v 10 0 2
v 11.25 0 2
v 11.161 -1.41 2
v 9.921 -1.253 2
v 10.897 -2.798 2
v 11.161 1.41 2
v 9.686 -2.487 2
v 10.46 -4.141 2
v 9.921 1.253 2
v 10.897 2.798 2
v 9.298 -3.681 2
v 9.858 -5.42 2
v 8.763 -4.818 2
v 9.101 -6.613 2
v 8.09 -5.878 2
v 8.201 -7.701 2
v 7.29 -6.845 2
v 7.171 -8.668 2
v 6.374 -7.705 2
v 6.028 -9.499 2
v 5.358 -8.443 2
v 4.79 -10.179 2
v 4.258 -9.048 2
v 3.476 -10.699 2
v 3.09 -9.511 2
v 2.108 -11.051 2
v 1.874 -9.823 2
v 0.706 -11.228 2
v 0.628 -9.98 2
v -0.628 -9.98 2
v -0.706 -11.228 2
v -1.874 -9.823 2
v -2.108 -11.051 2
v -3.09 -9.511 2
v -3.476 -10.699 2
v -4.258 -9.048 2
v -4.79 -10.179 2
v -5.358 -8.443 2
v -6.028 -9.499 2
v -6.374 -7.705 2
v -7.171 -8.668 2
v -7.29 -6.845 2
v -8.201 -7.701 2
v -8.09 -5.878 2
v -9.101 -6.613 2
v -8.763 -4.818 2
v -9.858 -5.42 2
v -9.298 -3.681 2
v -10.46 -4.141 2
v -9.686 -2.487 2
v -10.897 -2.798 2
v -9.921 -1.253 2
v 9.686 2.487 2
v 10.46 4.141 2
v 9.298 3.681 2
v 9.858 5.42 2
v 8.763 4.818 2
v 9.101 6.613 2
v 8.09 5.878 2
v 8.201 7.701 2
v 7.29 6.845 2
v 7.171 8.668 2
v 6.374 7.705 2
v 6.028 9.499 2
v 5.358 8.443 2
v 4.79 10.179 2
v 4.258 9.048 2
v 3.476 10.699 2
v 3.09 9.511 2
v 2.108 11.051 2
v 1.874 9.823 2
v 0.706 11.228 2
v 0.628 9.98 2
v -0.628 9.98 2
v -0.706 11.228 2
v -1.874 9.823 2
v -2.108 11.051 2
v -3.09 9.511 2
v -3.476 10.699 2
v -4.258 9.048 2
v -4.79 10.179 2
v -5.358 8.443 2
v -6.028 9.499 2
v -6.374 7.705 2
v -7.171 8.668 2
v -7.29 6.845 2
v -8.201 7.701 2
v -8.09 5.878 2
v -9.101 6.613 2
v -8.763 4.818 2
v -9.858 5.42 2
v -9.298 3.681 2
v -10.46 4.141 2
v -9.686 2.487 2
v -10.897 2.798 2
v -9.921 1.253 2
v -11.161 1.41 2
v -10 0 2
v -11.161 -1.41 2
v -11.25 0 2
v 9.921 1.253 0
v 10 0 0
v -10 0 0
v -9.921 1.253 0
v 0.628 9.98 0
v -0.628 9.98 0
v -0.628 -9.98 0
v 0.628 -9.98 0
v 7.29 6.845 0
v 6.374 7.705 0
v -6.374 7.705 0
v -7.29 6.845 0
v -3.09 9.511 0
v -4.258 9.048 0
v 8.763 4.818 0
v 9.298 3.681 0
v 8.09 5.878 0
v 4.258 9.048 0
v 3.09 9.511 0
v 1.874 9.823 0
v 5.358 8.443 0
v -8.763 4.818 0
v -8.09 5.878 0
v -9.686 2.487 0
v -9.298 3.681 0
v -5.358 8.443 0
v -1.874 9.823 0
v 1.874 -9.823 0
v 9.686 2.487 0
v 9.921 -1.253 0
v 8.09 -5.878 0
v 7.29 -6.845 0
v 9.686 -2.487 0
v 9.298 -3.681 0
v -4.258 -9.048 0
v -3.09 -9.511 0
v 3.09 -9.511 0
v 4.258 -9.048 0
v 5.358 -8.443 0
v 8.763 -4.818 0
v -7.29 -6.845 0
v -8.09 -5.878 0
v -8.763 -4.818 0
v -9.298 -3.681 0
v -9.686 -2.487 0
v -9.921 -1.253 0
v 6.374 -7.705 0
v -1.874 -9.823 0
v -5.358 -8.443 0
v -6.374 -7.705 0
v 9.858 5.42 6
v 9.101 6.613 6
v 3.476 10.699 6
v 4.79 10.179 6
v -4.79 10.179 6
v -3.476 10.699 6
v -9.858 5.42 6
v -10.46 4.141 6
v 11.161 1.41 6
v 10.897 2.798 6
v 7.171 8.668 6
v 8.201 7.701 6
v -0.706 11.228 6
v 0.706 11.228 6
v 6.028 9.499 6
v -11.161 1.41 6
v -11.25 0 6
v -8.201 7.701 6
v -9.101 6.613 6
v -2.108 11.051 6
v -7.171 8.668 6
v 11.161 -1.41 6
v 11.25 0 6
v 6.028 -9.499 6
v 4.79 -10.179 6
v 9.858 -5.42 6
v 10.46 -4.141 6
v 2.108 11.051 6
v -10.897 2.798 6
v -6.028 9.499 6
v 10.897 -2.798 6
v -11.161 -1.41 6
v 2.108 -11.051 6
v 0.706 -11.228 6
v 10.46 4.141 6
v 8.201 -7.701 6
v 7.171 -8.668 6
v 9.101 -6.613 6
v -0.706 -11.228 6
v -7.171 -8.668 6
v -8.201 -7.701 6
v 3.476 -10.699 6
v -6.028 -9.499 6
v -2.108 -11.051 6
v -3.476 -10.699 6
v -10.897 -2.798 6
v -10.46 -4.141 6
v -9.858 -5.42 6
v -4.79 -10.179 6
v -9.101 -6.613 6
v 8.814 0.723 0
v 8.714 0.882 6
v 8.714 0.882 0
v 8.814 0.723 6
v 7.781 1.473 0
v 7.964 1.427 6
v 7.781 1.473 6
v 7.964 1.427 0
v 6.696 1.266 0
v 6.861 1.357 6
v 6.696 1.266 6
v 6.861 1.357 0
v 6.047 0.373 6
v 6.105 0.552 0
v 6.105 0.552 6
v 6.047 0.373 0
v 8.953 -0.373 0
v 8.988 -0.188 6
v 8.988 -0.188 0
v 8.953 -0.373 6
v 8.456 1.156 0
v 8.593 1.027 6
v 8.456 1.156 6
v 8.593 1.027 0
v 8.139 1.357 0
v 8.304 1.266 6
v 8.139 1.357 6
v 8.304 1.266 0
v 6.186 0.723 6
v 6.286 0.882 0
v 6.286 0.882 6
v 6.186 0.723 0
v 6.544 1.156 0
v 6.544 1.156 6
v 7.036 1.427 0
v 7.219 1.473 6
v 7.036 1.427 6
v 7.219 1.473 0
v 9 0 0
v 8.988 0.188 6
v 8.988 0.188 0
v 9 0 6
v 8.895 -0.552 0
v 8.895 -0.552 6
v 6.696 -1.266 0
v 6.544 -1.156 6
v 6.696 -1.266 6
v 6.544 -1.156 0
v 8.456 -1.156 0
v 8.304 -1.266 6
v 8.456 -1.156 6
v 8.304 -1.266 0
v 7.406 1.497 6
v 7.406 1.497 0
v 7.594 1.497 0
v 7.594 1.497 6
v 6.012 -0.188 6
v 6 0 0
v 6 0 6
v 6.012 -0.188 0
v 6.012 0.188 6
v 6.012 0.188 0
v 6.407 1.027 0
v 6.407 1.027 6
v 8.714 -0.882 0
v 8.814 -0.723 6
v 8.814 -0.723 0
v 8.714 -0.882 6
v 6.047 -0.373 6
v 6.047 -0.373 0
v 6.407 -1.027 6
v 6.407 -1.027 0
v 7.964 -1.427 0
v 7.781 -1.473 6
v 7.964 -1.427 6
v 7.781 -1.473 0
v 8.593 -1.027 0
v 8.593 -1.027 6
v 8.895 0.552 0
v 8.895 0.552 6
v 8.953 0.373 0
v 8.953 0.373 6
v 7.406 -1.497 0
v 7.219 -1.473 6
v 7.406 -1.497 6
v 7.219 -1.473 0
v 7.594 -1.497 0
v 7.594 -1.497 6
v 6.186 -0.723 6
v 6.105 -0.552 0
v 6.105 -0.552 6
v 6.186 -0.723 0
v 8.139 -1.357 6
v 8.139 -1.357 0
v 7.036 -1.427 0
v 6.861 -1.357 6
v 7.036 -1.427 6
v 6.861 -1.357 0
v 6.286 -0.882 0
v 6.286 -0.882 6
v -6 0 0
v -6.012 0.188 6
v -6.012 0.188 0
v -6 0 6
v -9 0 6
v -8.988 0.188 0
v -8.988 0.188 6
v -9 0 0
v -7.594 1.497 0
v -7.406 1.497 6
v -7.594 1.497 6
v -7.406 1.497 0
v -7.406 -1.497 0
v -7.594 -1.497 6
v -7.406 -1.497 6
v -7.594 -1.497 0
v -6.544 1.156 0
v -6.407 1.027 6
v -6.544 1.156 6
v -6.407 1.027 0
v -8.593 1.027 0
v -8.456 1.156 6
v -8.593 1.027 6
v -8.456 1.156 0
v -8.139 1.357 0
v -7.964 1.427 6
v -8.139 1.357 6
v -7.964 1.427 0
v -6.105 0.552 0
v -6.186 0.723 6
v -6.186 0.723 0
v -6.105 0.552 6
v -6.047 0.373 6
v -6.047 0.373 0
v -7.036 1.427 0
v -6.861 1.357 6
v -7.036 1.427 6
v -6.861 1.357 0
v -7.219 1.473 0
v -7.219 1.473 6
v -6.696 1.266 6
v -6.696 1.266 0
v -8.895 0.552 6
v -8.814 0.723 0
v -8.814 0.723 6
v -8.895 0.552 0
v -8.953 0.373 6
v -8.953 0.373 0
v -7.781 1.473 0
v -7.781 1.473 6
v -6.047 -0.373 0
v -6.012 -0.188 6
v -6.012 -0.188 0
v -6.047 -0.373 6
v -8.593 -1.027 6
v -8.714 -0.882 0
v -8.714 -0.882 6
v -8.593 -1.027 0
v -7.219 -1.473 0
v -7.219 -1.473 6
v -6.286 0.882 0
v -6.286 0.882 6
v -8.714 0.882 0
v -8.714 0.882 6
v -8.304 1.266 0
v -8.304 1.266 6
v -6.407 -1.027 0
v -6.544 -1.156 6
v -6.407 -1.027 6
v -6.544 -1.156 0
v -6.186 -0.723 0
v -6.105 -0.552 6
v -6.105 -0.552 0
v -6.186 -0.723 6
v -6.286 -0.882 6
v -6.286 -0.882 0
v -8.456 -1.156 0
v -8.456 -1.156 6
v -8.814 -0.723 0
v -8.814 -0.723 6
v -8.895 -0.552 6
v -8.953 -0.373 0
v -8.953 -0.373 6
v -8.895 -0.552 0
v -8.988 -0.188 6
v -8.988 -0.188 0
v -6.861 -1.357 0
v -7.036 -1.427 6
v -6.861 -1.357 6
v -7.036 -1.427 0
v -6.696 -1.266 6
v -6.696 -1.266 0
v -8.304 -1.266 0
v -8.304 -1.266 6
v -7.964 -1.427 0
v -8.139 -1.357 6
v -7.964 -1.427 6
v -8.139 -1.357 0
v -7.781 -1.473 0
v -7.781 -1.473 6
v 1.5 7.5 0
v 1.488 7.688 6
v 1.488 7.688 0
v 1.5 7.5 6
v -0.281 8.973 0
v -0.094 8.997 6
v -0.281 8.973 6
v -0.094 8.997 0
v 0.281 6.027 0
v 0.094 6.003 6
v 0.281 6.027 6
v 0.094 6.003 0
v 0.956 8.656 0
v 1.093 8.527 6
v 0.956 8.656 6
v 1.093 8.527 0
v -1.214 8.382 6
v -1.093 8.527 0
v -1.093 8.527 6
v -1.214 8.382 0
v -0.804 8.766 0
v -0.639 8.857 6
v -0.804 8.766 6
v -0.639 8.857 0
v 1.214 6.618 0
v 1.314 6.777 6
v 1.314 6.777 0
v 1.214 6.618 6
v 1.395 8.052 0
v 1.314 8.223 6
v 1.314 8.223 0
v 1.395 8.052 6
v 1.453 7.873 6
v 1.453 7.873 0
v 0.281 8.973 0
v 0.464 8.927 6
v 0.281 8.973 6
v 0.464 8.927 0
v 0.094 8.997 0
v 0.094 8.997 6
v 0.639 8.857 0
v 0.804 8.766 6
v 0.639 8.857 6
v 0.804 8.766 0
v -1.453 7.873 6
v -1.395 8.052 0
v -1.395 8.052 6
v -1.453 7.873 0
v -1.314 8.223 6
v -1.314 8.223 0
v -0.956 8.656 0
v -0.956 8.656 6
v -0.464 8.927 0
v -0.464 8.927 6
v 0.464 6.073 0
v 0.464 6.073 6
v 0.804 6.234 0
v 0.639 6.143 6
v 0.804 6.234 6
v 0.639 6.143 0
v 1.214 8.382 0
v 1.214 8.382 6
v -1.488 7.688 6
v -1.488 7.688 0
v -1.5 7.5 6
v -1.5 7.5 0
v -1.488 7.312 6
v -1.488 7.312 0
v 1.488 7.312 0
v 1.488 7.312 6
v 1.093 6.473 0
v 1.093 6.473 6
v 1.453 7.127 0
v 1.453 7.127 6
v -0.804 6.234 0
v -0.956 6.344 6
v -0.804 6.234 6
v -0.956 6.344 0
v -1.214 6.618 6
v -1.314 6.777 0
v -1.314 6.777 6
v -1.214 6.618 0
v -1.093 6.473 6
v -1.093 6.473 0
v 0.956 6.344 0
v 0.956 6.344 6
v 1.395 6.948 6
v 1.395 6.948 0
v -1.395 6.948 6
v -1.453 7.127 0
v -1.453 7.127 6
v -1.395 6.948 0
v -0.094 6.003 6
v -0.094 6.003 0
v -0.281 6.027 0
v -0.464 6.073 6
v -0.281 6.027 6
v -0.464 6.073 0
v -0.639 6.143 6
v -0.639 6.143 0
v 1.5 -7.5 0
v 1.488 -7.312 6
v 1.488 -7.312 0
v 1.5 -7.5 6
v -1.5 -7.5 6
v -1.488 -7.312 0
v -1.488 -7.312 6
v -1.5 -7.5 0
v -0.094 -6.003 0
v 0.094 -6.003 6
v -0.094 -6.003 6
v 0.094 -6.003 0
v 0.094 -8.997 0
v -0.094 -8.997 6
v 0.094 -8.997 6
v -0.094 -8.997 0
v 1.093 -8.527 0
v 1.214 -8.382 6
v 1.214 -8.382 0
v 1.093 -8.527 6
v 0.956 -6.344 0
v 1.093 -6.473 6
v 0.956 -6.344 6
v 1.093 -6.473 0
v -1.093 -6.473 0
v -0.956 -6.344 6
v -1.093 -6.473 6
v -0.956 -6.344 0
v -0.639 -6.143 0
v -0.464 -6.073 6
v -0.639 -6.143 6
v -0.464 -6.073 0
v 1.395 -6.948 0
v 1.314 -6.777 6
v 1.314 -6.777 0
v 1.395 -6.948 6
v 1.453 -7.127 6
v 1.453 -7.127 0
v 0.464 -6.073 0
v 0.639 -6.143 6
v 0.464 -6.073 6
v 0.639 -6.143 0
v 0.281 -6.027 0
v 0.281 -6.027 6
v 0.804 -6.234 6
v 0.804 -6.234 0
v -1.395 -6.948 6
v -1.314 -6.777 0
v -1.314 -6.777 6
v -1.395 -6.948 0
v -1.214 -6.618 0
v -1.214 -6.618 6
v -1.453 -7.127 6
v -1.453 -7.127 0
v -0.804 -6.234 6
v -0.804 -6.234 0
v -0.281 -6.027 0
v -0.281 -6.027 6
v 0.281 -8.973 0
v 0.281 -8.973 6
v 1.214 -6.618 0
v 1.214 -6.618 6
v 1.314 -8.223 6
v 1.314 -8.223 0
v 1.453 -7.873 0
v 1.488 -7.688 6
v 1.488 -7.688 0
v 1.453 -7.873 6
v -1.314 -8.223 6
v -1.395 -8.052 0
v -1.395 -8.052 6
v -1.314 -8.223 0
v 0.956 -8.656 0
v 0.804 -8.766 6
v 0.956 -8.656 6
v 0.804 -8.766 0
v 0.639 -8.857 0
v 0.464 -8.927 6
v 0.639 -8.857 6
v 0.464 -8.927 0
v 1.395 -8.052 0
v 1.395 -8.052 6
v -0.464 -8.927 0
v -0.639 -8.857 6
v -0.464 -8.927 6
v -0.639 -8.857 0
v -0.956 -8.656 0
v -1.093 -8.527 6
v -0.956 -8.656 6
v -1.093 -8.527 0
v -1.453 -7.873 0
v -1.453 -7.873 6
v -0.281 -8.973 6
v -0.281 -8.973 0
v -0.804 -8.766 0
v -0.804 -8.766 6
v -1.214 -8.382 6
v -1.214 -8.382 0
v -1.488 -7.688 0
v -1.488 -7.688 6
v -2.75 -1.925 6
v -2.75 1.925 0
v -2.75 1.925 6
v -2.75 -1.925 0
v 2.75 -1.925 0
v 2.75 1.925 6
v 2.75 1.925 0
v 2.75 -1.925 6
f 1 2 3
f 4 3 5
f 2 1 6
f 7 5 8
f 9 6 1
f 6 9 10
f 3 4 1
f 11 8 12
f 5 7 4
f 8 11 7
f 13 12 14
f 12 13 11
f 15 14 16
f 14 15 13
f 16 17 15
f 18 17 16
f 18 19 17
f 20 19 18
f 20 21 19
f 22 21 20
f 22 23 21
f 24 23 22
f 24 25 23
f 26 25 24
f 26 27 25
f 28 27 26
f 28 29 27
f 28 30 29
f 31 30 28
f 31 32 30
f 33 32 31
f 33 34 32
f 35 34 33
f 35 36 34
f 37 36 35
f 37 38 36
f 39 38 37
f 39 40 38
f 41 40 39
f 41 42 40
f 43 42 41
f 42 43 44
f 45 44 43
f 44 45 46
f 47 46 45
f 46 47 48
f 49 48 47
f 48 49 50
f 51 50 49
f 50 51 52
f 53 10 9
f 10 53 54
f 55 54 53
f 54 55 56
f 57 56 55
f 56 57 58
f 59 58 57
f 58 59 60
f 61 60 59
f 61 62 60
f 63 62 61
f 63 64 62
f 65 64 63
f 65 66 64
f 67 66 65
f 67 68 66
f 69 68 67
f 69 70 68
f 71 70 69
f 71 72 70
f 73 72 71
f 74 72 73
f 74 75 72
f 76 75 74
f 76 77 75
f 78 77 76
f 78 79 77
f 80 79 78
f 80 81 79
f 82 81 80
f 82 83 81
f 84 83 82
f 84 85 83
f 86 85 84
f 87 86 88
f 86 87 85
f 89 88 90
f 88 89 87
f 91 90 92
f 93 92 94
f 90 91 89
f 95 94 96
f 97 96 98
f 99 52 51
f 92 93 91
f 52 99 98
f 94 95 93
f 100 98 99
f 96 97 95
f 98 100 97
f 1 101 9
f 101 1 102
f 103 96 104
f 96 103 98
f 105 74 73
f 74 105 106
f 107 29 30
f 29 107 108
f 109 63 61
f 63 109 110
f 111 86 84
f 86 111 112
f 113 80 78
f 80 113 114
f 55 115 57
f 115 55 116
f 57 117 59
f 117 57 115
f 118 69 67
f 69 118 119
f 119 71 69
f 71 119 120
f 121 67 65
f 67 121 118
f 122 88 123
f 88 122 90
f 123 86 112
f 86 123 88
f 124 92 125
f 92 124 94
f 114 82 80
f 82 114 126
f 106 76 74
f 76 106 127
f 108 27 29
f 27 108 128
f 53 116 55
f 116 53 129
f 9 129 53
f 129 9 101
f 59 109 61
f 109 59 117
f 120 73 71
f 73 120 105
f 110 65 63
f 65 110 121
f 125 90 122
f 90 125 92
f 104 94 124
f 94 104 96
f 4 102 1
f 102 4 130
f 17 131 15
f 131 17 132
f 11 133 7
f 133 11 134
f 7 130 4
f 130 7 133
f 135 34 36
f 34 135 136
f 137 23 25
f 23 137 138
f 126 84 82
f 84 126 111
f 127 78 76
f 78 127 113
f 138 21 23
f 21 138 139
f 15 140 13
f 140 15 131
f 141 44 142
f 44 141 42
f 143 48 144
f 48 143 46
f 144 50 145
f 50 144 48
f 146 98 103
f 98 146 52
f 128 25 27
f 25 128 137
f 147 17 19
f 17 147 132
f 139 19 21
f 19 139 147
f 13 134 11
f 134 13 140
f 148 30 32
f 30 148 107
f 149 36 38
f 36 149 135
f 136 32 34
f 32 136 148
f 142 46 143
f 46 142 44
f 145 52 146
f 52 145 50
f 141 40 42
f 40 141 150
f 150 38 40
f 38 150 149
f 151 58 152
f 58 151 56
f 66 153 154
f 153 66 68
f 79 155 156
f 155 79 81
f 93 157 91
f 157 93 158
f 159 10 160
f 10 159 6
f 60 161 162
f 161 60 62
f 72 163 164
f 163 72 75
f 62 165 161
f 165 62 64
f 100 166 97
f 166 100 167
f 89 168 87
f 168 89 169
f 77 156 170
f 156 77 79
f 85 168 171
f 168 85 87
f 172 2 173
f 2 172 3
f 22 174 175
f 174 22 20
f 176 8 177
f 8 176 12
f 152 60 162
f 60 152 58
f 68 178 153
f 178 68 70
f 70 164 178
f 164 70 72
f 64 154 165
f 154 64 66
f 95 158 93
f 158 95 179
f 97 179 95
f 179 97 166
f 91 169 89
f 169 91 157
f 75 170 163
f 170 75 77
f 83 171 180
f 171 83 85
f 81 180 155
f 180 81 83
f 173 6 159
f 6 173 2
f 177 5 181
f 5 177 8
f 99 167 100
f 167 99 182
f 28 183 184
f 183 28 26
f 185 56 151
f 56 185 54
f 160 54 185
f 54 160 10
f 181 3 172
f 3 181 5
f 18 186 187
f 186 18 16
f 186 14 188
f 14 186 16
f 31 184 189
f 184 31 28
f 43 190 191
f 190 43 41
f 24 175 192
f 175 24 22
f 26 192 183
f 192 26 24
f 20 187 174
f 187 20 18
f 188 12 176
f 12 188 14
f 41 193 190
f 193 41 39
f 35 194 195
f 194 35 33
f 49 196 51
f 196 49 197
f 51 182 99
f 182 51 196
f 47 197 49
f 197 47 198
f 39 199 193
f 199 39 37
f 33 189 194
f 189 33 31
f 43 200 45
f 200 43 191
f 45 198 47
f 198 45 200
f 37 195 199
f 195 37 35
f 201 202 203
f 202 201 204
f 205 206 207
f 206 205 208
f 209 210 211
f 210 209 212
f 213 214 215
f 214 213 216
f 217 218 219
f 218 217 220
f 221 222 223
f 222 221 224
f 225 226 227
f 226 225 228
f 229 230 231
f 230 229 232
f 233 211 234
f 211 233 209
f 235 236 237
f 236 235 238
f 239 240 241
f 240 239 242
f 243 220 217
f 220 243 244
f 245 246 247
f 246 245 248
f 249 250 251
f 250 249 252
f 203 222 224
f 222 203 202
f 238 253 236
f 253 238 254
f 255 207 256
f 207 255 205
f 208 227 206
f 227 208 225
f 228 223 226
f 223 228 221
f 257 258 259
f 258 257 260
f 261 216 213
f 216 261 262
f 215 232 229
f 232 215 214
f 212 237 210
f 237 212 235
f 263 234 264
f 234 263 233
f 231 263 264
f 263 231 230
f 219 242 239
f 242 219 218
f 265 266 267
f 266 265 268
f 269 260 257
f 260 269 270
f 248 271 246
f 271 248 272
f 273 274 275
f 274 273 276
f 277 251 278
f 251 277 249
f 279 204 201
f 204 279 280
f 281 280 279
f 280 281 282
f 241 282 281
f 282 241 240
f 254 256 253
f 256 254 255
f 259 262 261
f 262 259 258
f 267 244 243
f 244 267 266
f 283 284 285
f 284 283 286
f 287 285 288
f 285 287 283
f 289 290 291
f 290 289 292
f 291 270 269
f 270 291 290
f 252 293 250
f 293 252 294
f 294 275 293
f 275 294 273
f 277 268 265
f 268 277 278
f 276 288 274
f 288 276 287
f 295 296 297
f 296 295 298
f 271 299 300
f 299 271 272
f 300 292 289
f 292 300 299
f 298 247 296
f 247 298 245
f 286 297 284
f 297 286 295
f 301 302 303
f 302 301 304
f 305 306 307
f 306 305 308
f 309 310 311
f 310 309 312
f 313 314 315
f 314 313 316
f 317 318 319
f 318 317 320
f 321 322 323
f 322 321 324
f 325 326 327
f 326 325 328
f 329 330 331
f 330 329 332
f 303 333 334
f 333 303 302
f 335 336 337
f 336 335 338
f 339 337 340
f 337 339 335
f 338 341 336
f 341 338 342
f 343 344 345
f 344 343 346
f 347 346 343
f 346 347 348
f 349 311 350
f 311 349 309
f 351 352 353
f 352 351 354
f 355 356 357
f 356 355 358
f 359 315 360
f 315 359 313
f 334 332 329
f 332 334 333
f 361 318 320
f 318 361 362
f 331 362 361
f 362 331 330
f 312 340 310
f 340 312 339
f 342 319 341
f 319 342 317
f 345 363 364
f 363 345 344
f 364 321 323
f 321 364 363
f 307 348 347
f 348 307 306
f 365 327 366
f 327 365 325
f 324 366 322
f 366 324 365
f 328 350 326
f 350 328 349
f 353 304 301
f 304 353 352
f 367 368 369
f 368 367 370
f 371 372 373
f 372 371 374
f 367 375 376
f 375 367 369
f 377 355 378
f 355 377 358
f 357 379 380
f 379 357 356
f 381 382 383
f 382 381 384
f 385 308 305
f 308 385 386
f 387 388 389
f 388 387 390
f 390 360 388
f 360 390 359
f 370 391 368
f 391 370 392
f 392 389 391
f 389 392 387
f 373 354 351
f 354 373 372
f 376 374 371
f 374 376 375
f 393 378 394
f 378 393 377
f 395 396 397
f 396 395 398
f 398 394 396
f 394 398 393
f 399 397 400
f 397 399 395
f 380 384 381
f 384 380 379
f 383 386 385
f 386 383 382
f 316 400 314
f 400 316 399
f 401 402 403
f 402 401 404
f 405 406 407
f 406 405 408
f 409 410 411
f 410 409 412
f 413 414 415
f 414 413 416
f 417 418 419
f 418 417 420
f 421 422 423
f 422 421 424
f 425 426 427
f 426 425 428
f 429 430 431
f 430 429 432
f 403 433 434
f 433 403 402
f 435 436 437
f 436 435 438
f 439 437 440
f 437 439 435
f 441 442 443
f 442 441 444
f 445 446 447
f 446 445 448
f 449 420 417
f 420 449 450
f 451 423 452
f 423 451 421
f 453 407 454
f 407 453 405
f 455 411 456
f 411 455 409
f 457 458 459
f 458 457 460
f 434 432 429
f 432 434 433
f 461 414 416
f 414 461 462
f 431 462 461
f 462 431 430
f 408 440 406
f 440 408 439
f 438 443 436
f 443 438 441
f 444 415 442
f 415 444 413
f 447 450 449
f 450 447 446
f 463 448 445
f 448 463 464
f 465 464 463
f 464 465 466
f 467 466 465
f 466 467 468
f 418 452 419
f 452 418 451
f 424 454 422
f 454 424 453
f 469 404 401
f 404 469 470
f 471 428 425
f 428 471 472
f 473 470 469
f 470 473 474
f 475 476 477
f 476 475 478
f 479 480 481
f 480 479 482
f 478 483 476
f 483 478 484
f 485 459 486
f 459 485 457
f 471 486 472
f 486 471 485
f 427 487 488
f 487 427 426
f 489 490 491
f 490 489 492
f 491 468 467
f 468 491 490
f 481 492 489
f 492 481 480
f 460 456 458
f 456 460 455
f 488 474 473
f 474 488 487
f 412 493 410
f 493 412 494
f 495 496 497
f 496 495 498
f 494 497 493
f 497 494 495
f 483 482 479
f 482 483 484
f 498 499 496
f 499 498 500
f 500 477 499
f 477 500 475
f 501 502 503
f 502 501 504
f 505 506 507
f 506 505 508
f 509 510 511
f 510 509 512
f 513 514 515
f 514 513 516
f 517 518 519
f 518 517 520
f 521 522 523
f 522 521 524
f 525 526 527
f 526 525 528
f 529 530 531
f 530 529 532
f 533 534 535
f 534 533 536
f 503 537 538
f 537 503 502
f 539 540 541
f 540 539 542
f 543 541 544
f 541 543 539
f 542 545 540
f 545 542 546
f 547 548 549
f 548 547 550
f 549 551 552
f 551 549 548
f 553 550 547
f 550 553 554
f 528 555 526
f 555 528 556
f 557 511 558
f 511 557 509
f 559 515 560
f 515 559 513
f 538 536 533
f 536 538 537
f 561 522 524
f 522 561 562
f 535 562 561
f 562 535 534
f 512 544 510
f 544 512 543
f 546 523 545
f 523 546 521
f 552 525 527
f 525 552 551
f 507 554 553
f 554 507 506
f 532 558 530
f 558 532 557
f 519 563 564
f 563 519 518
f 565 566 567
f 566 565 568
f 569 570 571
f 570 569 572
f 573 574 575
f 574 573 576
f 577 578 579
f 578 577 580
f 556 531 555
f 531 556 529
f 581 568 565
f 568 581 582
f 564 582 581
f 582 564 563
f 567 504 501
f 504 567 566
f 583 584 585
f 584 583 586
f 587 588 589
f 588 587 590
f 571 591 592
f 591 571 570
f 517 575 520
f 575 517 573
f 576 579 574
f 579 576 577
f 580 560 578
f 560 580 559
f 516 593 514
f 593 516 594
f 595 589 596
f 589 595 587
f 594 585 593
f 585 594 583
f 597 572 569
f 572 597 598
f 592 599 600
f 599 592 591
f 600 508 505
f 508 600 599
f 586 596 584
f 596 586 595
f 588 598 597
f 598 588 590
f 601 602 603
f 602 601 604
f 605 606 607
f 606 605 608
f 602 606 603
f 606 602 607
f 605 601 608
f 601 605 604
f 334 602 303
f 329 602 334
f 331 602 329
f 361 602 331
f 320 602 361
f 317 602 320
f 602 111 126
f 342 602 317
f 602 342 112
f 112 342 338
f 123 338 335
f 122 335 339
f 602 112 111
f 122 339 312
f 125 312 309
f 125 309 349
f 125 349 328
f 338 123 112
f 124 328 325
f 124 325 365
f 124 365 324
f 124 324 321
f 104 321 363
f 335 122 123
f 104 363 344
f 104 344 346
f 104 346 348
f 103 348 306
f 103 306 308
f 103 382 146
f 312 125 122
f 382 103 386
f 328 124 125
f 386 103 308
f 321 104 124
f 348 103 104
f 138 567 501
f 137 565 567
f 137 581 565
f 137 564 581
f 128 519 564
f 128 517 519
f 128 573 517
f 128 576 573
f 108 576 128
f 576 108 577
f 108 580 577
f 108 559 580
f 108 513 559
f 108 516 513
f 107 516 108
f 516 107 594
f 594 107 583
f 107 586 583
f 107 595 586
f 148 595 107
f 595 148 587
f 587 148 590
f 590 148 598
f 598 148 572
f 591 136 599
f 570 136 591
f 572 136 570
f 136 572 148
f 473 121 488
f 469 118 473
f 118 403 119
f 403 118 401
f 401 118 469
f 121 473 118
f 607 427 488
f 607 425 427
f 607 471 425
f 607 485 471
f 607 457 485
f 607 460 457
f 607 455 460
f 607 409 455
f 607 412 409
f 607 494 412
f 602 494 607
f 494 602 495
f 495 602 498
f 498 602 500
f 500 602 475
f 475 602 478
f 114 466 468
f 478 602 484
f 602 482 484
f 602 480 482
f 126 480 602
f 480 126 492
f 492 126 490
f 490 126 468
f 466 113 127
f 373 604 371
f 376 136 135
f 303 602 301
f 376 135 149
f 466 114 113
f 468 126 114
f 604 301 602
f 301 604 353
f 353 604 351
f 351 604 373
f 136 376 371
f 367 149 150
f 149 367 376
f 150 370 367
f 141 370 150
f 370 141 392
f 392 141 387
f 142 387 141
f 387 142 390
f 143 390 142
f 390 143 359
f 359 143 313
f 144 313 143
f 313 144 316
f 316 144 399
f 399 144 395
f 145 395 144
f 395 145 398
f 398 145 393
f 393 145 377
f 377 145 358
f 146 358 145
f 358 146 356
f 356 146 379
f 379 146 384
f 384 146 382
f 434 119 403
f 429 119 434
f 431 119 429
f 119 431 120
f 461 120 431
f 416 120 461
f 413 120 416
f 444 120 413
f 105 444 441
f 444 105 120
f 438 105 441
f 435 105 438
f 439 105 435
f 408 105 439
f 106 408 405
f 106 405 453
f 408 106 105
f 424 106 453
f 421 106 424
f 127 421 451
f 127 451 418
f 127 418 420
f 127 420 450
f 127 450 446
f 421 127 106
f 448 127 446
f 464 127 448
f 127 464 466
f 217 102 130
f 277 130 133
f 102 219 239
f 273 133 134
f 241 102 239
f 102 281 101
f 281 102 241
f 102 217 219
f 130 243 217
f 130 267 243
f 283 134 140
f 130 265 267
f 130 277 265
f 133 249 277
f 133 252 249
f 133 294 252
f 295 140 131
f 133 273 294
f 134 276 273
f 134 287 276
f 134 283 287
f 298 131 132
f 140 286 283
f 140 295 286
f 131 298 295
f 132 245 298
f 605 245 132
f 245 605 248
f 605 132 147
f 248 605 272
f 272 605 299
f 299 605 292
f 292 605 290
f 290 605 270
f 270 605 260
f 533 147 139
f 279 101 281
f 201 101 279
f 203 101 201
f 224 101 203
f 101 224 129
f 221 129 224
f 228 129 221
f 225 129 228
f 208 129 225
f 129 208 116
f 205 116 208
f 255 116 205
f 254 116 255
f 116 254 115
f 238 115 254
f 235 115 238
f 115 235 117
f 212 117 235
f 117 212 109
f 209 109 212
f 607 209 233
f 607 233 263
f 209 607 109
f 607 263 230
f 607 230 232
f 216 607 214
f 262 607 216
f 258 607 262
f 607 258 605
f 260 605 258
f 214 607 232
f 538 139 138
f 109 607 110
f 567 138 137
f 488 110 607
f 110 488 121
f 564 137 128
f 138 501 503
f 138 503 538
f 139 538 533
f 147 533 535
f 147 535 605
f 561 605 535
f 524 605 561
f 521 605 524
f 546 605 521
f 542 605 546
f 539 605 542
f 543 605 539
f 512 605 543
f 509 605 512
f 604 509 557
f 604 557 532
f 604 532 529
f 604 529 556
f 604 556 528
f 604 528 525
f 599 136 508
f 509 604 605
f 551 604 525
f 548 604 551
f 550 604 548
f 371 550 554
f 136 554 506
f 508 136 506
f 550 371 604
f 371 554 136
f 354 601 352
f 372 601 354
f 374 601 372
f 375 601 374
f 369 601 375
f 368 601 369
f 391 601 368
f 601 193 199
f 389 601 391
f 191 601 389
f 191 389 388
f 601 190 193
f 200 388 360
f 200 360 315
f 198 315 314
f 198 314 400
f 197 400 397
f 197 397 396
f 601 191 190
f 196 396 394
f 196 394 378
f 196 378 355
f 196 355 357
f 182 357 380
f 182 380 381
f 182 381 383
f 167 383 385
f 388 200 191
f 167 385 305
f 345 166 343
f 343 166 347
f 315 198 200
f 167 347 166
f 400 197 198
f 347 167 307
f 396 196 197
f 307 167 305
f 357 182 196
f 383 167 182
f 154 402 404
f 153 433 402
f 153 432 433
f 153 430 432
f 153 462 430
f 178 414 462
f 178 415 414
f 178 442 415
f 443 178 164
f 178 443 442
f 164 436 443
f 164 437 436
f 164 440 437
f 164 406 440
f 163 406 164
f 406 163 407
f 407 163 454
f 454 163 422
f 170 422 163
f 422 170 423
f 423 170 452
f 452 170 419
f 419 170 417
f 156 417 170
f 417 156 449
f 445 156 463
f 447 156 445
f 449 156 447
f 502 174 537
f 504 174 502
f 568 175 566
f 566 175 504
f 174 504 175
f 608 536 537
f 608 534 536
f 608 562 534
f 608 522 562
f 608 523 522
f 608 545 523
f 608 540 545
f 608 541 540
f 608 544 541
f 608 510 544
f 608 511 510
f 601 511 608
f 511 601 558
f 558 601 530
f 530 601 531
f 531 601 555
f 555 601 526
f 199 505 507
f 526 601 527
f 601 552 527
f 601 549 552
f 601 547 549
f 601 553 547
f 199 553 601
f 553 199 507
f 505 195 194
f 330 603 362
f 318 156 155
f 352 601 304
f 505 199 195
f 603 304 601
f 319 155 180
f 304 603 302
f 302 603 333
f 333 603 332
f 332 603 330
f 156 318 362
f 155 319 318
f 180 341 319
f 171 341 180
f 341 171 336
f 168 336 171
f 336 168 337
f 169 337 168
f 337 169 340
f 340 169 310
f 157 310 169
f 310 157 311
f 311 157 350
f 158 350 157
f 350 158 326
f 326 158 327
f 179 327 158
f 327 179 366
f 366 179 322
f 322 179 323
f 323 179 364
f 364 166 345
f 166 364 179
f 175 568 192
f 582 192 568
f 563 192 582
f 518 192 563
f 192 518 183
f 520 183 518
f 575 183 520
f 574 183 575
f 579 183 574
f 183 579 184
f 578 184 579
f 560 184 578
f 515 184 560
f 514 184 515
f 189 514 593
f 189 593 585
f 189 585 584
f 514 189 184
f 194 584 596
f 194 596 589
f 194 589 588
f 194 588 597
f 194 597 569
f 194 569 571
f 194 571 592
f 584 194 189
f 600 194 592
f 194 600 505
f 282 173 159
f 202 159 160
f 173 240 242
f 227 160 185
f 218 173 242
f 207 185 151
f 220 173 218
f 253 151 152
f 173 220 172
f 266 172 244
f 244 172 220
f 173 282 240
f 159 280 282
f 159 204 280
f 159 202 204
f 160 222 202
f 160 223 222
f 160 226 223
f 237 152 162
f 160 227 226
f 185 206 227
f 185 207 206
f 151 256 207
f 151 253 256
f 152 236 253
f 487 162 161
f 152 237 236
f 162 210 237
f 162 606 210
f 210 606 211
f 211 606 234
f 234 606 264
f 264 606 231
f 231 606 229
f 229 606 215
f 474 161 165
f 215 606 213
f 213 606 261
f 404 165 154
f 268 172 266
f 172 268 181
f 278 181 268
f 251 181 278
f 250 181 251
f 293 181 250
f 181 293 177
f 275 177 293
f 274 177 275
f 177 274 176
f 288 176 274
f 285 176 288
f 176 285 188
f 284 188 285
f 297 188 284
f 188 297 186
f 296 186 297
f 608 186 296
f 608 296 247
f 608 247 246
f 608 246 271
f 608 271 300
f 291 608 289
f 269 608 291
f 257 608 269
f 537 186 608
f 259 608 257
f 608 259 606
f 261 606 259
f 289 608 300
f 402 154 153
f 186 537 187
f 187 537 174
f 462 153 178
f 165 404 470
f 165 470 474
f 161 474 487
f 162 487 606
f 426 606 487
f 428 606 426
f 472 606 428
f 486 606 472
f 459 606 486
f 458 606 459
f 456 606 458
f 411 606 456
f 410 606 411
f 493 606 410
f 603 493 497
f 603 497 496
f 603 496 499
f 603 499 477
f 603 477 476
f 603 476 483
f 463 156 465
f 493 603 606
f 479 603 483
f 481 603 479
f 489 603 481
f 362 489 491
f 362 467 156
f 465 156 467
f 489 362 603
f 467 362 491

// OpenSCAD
$fn = 50;


difference() {
	union() {
		*color(alpha = 1.0000000000, c = "gray") {
			translate(v = [0, 7, 0]) {
				linear_extrude(height = 12) {
					text(font = "Arial:style=Bold", halign = "center", size = 4.5000000000, text = "COMMENT bearing_plate_plate", valign = "center");
				}
			}
		}
		*color(alpha = 1.0000000000, c = "gray") {
			translate(v = [0, 14, 0]) {
				linear_extrude(height = 12) {
					text(font = "Arial:style=Bold", halign = "center", size = 4.5000000000, text = "COMMENT description oobb_cylinder_shape_positive_type_12_depth_3_width_12_height_12_thickness_6704_bearing_motor_gearmotor_01_shaft_11.7_radius_all_mode", valign = "center");
				}
			}
		}
		translate(v = [0, 0, -6.0000000000]) {
			cylinder(h = 12, r = 11.7000000000);
		}
		*color(alpha = 1.0000000000, c = "gray") {
			translate(v = [0, 7, 0]) {
				linear_extrude(height = 1) {
					text(font = "Arial:style=Bold", halign = "center", size = 4.5000000000, text = "COMMENT bearing_plate_slice", valign = "center");
				}
			}
		}
	}
	union() {
		translate(v = [18.0000000000, 0, 6.0000000000]) {
			rotate(a = [0, 180, 30.0000000000]) {
				difference() {
					union() {
						translate(v = [0, 0, -12.0000000000]) {
							cylinder(h = 12, r = 1.5000000000);
						}
						translate(v = [0, 0, -12.0000000000]) {
							linear_extrude(height = 2.5000000000) {
								polygon(points = [[3.1735000000, 0.0000000000], [1.5867500000, 2.7483316189], [-1.5867500000, 2.7483316189], [-3.1735000000, 0.0000000000], [-1.5867500000, -2.7483316189], [1.5867500000, -2.7483316189]]);
							}
						}
						translate(v = [0, 0, -12.0000000000]) {
							cylinder(h = 12, r = 1.8000000000);
						}
						translate(v = [0, 0, -12.0000000000]) {
							linear_extrude(height = 2.5000000000) {
								polygon(points = [[3.1735000000, 0.0000000000], [1.5867500000, 2.7483316189], [-1.5867500000, 2.7483316189], [-3.1735000000, 0.0000000000], [-1.5867500000, -2.7483316189], [1.5867500000, -2.7483316189]]);
							}
						}
						translate(v = [0, 0, -1.7000000000]) {
							cylinder(h = 1.7000000000, r1 = 1.5000000000, r2 = 2.9000000000);
						}
						translate(v = [0, 0, -12.0000000000]) {
							cylinder(h = 12, r = 1.5000000000);
						}
						translate(v = [0, 0, -12.0000000000]) {
							linear_extrude(height = 2.5000000000) {
								polygon(points = [[3.1735000000, 0.0000000000], [1.5867500000, 2.7483316189], [-1.5867500000, 2.7483316189], [-3.1735000000, 0.0000000000], [-1.5867500000, -2.7483316189], [1.5867500000, -2.7483316189]]);
							}
						}
					}
					union();
				}
			}
		}
		translate(v = [-18.0000000000, 0, 6.0000000000]) {
			rotate(a = [0, 180, 30.0000000000]) {
				difference() {
					union() {
						translate(v = [0, 0, -12.0000000000]) {
							cylinder(h = 12, r = 1.5000000000);
						}
						translate(v = [0, 0, -12.0000000000]) {
							linear_extrude(height = 2.5000000000) {
								polygon(points = [[3.1735000000, 0.0000000000], [1.5867500000, 2.7483316189], [-1.5867500000, 2.7483316189], [-3.1735000000, 0.0000000000], [-1.5867500000, -2.7483316189], [1.5867500000, -2.7483316189]]);
							}
						}
						translate(v = [0, 0, -12.0000000000]) {
							cylinder(h = 12, r = 1.8000000000);
						}
						translate(v = [0, 0, -12.0000000000]) {
							linear_extrude(height = 2.5000000000) {
								polygon(points = [[3.1735000000, 0.0000000000], [1.5867500000, 2.7483316189], [-1.5867500000, 2.7483316189], [-3.1735000000, 0.0000000000], [-1.5867500000, -2.7483316189], [1.5867500000, -2.7483316189]]);
							}
						}
						translate(v = [0, 0, -1.7000000000]) {
							cylinder(h = 1.7000000000, r1 = 1.5000000000, r2 = 2.9000000000);
						}
						translate(v = [0, 0, -12.0000000000]) {
							cylinder(h = 12, r = 1.5000000000);
						}
						translate(v = [0, 0, -12.0000000000]) {
							linear_extrude(height = 2.5000000000) {
								polygon(points = [[3.1735000000, 0.0000000000], [1.5867500000, 2.7483316189], [-1.5867500000, 2.7483316189], [-3.1735000000, 0.0000000000], [-1.5867500000, -2.7483316189], [1.5867500000, -2.7483316189]]);
							}
						}
					}
					union();
				}
			}
		}
		translate(v = [0, 18.0000000000, -6.0000000000]) {
			rotate(a = [0, 0, 0]) {
				difference() {
					union() {
						translate(v = [0, 0, -12.0000000000]) {
							cylinder(h = 12, r = 1.5000000000);
						}
						translate(v = [0, 0, -12.0000000000]) {
							linear_extrude(height = 2.5000000000) {
								polygon(points = [[3.1735000000, 0.0000000000], [1.5867500000, 2.7483316189], [-1.5867500000, 2.7483316189], [-3.1735000000, 0.0000000000], [-1.5867500000, -2.7483316189], [1.5867500000, -2.7483316189]]);
							}
						}
						translate(v = [0, 0, -12.0000000000]) {
							cylinder(h = 12, r = 1.8000000000);
						}
						translate(v = [0, 0, -12.0000000000]) {
							linear_extrude(height = 2.5000000000) {
								polygon(points = [[3.1735000000, 0.0000000000], [1.5867500000, 2.7483316189], [-1.5867500000, 2.7483316189], [-3.1735000000, 0.0000000000], [-1.5867500000, -2.7483316189], [1.5867500000, -2.7483316189]]);
							}
						}
						translate(v = [0, 0, -1.7000000000]) {
							cylinder(h = 1.7000000000, r1 = 1.5000000000, r2 = 2.9000000000);
						}
						translate(v = [0, 0, -12.0000000000]) {
							cylinder(h = 12, r = 1.5000000000);
						}
						translate(v = [0, 0, -12.0000000000]) {
							linear_extrude(height = 2.5000000000) {
								polygon(points = [[3.1735000000, 0.0000000000], [1.5867500000, 2.7483316189], [-1.5867500000, 2.7483316189], [-3.1735000000, 0.0000000000], [-1.5867500000, -2.7483316189], [1.5867500000, -2.7483316189]]);
							}
						}
					}
					union();
				}
			}
		}
		translate(v = [0, -18.0000000000, -6.0000000000]) {
			rotate(a = [0, 0, 0]) {
				difference() {
					union() {
						translate(v = [0, 0, -12.0000000000]) {
							cylinder(h = 12, r = 1.5000000000);
						}
						translate(v = [0, 0, -12.0000000000]) {
							linear_extrude(height = 2.5000000000) {
								polygon(points = [[3.1735000000, 0.0000000000], [1.5867500000, 2.7483316189], [-1.5867500000, 2.7483316189], [-3.1735000000, 0.0000000000], [-1.5867500000, -2.7483316189], [1.5867500000, -2.7483316189]]);
							}
						}
						translate(v = [0, 0, -12.0000000000]) {
							cylinder(h = 12, r = 1.8000000000);
						}
						translate(v = [0, 0, -12.0000000000]) {
							linear_extrude(height = 2.5000000000) {
								polygon(points = [[3.1735000000, 0.0000000000], [1.5867500000, 2.7483316189], [-1.5867500000, 2.7483316189], [-3.1735000000, 0.0000000000], [-1.5867500000, -2.7483316189], [1.5867500000, -2.7483316189]]);
							}
						}
						translate(v = [0, 0, -1.7000000000]) {
							cylinder(h = 1.7000000000, r1 = 1.5000000000, r2 = 2.9000000000);
						}
						translate(v = [0, 0, -12.0000000000]) {
							cylinder(h = 12, r = 1.5000000000);
						}
						translate(v = [0, 0, -12.0000000000]) {
							linear_extrude(height = 2.5000000000) {
								polygon(points = [[3.1735000000, 0.0000000000], [1.5867500000, 2.7483316189], [-1.5867500000, 2.7483316189], [-3.1735000000, 0.0000000000], [-1.5867500000, -2.7483316189], [1.5867500000, -2.7483316189]]);
							}
						}
					}
					union();
				}
			}
		}
		*color(alpha = 1.0000000000, c = "gray") {
			translate(v = [0, 14, 0]) {
				linear_extrude(height = 3) {
					text(font = "Arial:style=Bold", halign = "center", size = 4.5000000000, text = "COMMENT description oobb_bearing_shape_n_type_12_depth_3_width_3_height_12_thickness_6704_bearing_motor_gearmotor_01_shaft", valign = "center");
				}
			}
		}
		translate(v = [0, 0, -2.0000000000]) {
			union() {
				difference() {
					cylinder(h = 4, r = 13.5000000000);
					cylinder(h = 4, r = 10.0000000000);
				}
				difference() {
					translate(v = [0, 0, -50]) {
						cylinder(h = 100, r = 12.2500000000);
					}
					translate(v = [0, 0, -50]) {
						cylinder(h = 100, r = 11.2500000000);
					}
				}
			}
		}
		*color(alpha = 1.0000000000, c = "gray") {
			translate(v = [7.5000000000, 14, 0]) {
				linear_extrude(height = 3) {
					text(font = "Arial:style=Bold", halign = "center", size = 4.5000000000, text = "COMMENT description oobb_hole_shape_n_type_m3_radius_name_7.5_0_0_pos_3_width_3_height_12_thickness_6704_bearing_motor_gearmotor_01_shaft_true_hole", valign = "center");
				}
			}
		}
		translate(v = [7.5000000000, 0, -50.0000000000]) {
			cylinder(h = 100, r = 1.5000000000);
		}
		*color(alpha = 1.0000000000, c = "gray") {
			translate(v = [-7.5000000000, 14, 0]) {
				linear_extrude(height = 3) {
					text(font = "Arial:style=Bold", halign = "center", size = 4.5000000000, text = "COMMENT description oobb_hole_shape_n_type_m3_radius_name_-7.5_0_0_pos_3_width_3_height_12_thickness_6704_bearing_motor_gearmotor_01_shaft_true_hole", valign = "center");
				}
			}
		}
		translate(v = [-7.5000000000, 0, -50.0000000000]) {
			cylinder(h = 100, r = 1.5000000000);
		}
		*color(alpha = 1.0000000000, c = "gray") {
			translate(v = [0, 21.5000000000, 0]) {
				linear_extrude(height = 3) {
					text(font = "Arial:style=Bold", halign = "center", size = 4.5000000000, text = "COMMENT description oobb_hole_shape_n_type_m3_radius_name_0_7.5_0_pos_3_width_3_height_12_thickness_6704_bearing_motor_gearmotor_01_shaft_true_hole", valign = "center");
				}
			}
		}
		translate(v = [0, 7.5000000000, -50.0000000000]) {
			cylinder(h = 100, r = 1.5000000000);
		}
		*color(alpha = 1.0000000000, c = "gray") {
			translate(v = [0, 6.5000000000, 0]) {
				linear_extrude(height = 3) {
					text(font = "Arial:style=Bold", halign = "center", size = 4.5000000000, text = "COMMENT description oobb_hole_shape_n_type_m3_radius_name_0_-7.5_0_pos_3_width_3_height_12_thickness_6704_bearing_motor_gearmotor_01_shaft_true_hole", valign = "center");
				}
			}
		}
		translate(v = [0, -7.5000000000, -50.0000000000]) {
			cylinder(h = 100, r = 1.5000000000);
		}
		*color(alpha = 1.0000000000, c = "gray") {
			translate(v = [0, 14, 0]) {
				linear_extrude(height = 3) {
					text(font = "Arial:style=Bold", halign = "center", size = 4.5000000000, text = "COMMENT description oobb_holes_shape_n_type_m6_radius_name_3_width_3_height_12_thickness_6704_bearing_motor_gearmotor_01_shaft_perimeter_miss_middle_holes", valign = "center");
				}
			}
		}
		translate(v = [-15.0000000000, -15.0000000000, -50.0000000000]) {
			cylinder(h = 100, r = 3.0000000000);
		}
		translate(v = [-15.0000000000, 15.0000000000, -50.0000000000]) {
			cylinder(h = 100, r = 3.0000000000);
		}
		translate(v = [15.0000000000, -15.0000000000, -50.0000000000]) {
			cylinder(h = 100, r = 3.0000000000);
		}
		translate(v = [15.0000000000, 15.0000000000, -50.0000000000]) {
			cylinder(h = 100, r = 3.0000000000);
		}
		*color(alpha = 1.0000000000, c = "gray") {
			translate(v = [0, 14, 0]) {
				linear_extrude(height = 3) {
					text(font = "Arial:style=Bold", halign = "center", size = 4.5000000000, text = "COMMENT description oobb_motor_gearmotor_01_shape_n_type_3_width_3_height_12_thickness_6704_bearing_motor_gearmotor_01_shaft_shaft_part", valign = "center");
				}
			}
		}
		translate(v = [-2.7500000000, -1.9250000000, -50]) {
			cube(size = [5.5000000000, 3.8500000000, 100]);
		}
		*color(alpha = 1.0000000000, c = "gray") {
			translate(v = [18.0000000000, 14, 6.0000000000]) {
				rotate(a = [0, 180, 30.0000000000]) {
					linear_extrude(height = 3) {
						text(font = "Arial:style=Bold", halign = "center", size = 4.5000000000, text = "COMMENT description oobb_screw_countersunk_shape_n_type_m3_radius_name_12_depth_18.0_0_6.0_pos_3_width_3_height_12_thickness_6704_bearing_motor_gearmotor_01_shaft_0_180_30.0_rot_true_nut_true_overhang", valign = "center");
					}
				}
			}
		}
		*color(alpha = 1.0000000000, c = "gray") {
			translate(v = [-18.0000000000, 14, 6.0000000000]) {
				rotate(a = [0, 180, 30.0000000000]) {
					linear_extrude(height = 3) {
						text(font = "Arial:style=Bold", halign = "center", size = 4.5000000000, text = "COMMENT description oobb_screw_countersunk_shape_n_type_m3_radius_name_12_depth_-18.0_0_6.0_pos_3_width_3_height_12_thickness_6704_bearing_motor_gearmotor_01_shaft_0_180_30.0_rot_true_nut_true_overhang", valign = "center");
					}
				}
			}
		}
		*color(alpha = 1.0000000000, c = "gray") {
			translate(v = [0, 32.0000000000, -6.0000000000]) {
				linear_extrude(height = 3) {
					text(font = "Arial:style=Bold", halign = "center", size = 4.5000000000, text = "COMMENT description oobb_screw_countersunk_shape_n_type_m3_radius_name_12_depth_0_18.0_-6.0_pos_3_width_3_height_12_thickness_6704_bearing_motor_gearmotor_01_shaft_0_0_0_rot_true_nut_true_overhang", valign = "center");
				}
			}
		}
		*color(alpha = 1.0000000000, c = "gray") {
			translate(v = [0, -4.0000000000, -6.0000000000]) {
				linear_extrude(height = 3) {
					text(font = "Arial:style=Bold", halign = "center", size = 4.5000000000, text = "COMMENT description oobb_screw_countersunk_shape_n_type_m3_radius_name_12_depth_0_-18.0_-6.0_pos_3_width_3_height_12_thickness_6704_bearing_motor_gearmotor_01_shaft_0_0_0_rot_true_nut_true_overhang", valign = "center");
				}
			}
		}
		*color(alpha = 1.0000000000, c = "gray") {
			translate(v = [0, 14, 0]) {
				linear_extrude(height = 1) {
					text(font = "Arial:style=Bold", halign = "center", size = 4.5000000000, text = "COMMENT description oobb_slice_shape_n_type_3dpr_mode_top_zz", valign = "center");
				}
			}
		}
		translate(v = [-250, -250, -500]) {
			cube(size = [500, 500, 500]);
		}
	}
}
